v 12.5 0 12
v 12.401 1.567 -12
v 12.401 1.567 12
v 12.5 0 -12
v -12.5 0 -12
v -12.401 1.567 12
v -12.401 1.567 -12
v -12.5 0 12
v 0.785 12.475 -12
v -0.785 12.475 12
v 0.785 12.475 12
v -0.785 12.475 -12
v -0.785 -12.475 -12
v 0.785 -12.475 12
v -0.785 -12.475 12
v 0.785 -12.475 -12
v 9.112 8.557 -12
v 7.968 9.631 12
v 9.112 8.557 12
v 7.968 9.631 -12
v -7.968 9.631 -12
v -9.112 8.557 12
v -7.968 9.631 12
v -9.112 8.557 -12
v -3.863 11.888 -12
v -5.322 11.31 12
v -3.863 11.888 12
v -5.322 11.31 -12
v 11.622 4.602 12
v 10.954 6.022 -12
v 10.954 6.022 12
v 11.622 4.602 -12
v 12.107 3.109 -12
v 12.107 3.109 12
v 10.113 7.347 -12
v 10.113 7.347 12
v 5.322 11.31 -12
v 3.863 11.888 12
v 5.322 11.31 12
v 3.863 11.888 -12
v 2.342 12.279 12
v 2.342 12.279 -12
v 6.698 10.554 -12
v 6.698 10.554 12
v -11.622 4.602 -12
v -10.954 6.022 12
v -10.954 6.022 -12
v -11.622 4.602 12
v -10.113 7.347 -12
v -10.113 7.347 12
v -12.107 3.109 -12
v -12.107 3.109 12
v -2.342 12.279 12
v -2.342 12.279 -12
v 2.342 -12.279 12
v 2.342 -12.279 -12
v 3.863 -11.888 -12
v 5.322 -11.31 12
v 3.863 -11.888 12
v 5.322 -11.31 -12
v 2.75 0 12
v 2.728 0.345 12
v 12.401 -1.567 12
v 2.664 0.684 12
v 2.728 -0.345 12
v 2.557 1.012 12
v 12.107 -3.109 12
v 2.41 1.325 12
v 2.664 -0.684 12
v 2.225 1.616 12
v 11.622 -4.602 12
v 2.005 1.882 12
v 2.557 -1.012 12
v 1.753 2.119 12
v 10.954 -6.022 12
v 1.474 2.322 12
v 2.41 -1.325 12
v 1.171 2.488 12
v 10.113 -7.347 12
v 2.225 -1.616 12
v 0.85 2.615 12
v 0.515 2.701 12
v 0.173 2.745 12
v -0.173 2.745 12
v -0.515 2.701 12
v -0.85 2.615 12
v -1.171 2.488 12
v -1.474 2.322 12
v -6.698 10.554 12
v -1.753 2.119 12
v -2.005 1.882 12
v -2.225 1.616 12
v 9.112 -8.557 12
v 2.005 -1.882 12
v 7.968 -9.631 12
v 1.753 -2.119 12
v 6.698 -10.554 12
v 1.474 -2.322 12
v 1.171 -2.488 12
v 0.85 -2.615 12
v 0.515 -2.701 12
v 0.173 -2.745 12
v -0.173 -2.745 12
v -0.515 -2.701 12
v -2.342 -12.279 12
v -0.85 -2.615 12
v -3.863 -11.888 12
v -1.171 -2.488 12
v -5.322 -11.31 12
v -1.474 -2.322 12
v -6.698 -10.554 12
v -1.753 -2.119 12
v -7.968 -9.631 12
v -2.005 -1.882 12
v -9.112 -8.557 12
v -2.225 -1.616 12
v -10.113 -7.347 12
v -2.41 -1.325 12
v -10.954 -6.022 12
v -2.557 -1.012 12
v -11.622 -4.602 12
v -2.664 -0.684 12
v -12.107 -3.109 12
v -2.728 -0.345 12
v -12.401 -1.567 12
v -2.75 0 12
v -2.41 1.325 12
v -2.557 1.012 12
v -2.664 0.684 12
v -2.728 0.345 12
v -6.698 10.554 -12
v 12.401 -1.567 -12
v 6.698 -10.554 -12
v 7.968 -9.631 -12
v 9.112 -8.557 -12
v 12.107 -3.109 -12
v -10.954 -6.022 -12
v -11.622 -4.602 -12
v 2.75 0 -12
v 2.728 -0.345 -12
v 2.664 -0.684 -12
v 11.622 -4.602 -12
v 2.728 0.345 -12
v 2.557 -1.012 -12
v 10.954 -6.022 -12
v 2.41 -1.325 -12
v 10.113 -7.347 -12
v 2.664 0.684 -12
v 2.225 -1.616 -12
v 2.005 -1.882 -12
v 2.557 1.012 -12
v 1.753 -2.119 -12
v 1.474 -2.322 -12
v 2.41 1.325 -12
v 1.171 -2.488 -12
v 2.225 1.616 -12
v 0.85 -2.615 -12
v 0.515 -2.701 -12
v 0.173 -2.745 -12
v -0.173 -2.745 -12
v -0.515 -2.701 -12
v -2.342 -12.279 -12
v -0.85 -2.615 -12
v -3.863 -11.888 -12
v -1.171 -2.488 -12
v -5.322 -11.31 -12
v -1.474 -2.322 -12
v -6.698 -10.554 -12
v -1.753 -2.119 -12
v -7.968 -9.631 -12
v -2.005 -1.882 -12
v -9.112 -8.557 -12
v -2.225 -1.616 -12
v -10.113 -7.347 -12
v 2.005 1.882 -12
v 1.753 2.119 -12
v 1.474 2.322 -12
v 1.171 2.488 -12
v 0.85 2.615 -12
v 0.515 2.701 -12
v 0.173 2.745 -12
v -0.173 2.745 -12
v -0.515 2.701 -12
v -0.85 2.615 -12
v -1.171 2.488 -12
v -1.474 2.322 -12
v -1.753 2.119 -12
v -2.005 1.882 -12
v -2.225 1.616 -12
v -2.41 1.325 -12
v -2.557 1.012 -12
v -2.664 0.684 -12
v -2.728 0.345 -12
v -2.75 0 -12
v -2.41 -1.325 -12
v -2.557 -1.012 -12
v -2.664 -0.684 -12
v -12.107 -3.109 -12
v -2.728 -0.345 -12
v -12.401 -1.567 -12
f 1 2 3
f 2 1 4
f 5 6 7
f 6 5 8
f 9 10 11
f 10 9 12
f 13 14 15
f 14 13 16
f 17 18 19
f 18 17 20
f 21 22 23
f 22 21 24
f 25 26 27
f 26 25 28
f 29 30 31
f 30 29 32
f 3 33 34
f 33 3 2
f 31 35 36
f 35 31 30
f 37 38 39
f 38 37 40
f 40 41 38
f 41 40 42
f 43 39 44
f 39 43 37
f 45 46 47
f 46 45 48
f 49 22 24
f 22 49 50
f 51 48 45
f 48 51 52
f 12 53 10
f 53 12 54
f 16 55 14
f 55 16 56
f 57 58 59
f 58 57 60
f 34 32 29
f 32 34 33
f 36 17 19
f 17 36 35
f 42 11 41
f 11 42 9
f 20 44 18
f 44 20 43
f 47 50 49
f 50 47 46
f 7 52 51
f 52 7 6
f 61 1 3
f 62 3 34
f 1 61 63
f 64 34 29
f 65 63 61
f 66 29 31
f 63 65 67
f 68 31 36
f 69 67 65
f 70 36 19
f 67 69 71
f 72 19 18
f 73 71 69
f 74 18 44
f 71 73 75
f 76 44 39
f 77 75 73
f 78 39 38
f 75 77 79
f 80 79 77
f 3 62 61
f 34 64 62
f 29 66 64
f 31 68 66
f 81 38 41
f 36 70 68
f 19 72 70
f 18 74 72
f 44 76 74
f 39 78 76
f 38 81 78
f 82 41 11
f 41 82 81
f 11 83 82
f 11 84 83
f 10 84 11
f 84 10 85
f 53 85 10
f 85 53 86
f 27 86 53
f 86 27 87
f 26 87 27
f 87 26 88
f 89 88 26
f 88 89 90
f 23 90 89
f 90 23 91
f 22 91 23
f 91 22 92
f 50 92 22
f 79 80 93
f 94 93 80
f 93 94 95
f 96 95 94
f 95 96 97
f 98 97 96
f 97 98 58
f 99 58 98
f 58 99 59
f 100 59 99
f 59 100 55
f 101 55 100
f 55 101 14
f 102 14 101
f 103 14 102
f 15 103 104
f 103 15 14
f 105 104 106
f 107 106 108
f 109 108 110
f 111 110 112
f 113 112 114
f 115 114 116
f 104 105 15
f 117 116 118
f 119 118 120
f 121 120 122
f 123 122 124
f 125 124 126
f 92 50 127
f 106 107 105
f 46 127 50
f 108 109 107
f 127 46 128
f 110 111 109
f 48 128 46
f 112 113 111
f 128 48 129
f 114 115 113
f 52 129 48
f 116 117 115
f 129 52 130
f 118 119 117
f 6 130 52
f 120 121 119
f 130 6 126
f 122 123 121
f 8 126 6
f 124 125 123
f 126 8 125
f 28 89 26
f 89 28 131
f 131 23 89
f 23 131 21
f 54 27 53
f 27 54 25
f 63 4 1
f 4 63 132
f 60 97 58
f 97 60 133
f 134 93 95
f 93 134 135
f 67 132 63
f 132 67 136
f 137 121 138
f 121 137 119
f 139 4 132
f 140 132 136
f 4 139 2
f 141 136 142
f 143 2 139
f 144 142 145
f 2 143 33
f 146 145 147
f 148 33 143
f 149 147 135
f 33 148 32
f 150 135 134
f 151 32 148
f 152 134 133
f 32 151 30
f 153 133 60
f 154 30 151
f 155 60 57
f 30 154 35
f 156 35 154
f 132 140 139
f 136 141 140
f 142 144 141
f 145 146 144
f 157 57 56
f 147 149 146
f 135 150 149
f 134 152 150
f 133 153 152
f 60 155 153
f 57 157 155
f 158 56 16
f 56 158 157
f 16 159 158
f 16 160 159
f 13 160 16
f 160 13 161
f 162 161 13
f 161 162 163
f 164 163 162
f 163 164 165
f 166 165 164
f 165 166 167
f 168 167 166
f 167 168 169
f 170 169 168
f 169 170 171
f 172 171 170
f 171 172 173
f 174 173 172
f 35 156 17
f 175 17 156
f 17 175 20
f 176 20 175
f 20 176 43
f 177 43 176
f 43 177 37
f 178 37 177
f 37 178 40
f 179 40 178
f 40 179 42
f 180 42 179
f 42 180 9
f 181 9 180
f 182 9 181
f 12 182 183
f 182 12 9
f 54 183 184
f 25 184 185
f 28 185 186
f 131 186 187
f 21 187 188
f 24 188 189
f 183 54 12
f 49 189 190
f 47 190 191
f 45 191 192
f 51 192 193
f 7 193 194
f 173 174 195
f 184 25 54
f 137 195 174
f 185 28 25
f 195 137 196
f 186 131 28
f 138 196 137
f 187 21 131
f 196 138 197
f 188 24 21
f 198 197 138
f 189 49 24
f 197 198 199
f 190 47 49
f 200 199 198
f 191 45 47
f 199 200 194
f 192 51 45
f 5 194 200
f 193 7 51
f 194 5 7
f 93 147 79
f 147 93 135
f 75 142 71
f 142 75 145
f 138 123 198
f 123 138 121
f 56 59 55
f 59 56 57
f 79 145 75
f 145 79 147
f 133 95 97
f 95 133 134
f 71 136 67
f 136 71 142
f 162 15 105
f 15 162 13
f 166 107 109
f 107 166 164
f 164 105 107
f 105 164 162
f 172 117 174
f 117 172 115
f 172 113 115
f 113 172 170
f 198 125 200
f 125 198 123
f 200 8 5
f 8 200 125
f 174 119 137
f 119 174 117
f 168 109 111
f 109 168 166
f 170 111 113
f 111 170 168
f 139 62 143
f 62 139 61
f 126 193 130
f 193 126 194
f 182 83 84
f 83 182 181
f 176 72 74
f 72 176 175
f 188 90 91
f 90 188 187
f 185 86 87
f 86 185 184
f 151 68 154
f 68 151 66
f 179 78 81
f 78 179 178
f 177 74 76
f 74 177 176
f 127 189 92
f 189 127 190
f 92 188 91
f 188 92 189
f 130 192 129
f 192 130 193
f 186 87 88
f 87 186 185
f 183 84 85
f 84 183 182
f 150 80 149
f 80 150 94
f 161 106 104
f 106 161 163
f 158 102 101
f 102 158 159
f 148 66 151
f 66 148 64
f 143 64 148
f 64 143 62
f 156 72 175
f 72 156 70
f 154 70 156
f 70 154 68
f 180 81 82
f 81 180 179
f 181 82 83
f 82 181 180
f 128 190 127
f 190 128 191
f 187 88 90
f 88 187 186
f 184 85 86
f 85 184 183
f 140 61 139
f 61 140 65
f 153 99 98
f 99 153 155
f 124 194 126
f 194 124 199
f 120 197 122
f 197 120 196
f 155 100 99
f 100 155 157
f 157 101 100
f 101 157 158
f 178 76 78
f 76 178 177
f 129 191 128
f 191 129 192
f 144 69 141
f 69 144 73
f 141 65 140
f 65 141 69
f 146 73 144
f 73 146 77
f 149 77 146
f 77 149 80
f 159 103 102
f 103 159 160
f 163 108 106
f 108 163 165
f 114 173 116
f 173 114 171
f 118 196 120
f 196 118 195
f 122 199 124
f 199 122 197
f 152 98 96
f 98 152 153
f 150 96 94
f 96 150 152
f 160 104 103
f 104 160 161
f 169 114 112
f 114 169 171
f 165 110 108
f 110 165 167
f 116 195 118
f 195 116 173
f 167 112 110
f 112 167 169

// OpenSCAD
$fn = 50;


difference() {
	union() {
		translate(v = [0, 0, -12.0000000000]) {
			cylinder(h = 24, r = 12.5000000000);
		}
	}
	union() {
		translate(v = [0, 0, -100.0000000000]) {
			cylinder(h = 200, r = 2.7500000000);
		}
	}
}
